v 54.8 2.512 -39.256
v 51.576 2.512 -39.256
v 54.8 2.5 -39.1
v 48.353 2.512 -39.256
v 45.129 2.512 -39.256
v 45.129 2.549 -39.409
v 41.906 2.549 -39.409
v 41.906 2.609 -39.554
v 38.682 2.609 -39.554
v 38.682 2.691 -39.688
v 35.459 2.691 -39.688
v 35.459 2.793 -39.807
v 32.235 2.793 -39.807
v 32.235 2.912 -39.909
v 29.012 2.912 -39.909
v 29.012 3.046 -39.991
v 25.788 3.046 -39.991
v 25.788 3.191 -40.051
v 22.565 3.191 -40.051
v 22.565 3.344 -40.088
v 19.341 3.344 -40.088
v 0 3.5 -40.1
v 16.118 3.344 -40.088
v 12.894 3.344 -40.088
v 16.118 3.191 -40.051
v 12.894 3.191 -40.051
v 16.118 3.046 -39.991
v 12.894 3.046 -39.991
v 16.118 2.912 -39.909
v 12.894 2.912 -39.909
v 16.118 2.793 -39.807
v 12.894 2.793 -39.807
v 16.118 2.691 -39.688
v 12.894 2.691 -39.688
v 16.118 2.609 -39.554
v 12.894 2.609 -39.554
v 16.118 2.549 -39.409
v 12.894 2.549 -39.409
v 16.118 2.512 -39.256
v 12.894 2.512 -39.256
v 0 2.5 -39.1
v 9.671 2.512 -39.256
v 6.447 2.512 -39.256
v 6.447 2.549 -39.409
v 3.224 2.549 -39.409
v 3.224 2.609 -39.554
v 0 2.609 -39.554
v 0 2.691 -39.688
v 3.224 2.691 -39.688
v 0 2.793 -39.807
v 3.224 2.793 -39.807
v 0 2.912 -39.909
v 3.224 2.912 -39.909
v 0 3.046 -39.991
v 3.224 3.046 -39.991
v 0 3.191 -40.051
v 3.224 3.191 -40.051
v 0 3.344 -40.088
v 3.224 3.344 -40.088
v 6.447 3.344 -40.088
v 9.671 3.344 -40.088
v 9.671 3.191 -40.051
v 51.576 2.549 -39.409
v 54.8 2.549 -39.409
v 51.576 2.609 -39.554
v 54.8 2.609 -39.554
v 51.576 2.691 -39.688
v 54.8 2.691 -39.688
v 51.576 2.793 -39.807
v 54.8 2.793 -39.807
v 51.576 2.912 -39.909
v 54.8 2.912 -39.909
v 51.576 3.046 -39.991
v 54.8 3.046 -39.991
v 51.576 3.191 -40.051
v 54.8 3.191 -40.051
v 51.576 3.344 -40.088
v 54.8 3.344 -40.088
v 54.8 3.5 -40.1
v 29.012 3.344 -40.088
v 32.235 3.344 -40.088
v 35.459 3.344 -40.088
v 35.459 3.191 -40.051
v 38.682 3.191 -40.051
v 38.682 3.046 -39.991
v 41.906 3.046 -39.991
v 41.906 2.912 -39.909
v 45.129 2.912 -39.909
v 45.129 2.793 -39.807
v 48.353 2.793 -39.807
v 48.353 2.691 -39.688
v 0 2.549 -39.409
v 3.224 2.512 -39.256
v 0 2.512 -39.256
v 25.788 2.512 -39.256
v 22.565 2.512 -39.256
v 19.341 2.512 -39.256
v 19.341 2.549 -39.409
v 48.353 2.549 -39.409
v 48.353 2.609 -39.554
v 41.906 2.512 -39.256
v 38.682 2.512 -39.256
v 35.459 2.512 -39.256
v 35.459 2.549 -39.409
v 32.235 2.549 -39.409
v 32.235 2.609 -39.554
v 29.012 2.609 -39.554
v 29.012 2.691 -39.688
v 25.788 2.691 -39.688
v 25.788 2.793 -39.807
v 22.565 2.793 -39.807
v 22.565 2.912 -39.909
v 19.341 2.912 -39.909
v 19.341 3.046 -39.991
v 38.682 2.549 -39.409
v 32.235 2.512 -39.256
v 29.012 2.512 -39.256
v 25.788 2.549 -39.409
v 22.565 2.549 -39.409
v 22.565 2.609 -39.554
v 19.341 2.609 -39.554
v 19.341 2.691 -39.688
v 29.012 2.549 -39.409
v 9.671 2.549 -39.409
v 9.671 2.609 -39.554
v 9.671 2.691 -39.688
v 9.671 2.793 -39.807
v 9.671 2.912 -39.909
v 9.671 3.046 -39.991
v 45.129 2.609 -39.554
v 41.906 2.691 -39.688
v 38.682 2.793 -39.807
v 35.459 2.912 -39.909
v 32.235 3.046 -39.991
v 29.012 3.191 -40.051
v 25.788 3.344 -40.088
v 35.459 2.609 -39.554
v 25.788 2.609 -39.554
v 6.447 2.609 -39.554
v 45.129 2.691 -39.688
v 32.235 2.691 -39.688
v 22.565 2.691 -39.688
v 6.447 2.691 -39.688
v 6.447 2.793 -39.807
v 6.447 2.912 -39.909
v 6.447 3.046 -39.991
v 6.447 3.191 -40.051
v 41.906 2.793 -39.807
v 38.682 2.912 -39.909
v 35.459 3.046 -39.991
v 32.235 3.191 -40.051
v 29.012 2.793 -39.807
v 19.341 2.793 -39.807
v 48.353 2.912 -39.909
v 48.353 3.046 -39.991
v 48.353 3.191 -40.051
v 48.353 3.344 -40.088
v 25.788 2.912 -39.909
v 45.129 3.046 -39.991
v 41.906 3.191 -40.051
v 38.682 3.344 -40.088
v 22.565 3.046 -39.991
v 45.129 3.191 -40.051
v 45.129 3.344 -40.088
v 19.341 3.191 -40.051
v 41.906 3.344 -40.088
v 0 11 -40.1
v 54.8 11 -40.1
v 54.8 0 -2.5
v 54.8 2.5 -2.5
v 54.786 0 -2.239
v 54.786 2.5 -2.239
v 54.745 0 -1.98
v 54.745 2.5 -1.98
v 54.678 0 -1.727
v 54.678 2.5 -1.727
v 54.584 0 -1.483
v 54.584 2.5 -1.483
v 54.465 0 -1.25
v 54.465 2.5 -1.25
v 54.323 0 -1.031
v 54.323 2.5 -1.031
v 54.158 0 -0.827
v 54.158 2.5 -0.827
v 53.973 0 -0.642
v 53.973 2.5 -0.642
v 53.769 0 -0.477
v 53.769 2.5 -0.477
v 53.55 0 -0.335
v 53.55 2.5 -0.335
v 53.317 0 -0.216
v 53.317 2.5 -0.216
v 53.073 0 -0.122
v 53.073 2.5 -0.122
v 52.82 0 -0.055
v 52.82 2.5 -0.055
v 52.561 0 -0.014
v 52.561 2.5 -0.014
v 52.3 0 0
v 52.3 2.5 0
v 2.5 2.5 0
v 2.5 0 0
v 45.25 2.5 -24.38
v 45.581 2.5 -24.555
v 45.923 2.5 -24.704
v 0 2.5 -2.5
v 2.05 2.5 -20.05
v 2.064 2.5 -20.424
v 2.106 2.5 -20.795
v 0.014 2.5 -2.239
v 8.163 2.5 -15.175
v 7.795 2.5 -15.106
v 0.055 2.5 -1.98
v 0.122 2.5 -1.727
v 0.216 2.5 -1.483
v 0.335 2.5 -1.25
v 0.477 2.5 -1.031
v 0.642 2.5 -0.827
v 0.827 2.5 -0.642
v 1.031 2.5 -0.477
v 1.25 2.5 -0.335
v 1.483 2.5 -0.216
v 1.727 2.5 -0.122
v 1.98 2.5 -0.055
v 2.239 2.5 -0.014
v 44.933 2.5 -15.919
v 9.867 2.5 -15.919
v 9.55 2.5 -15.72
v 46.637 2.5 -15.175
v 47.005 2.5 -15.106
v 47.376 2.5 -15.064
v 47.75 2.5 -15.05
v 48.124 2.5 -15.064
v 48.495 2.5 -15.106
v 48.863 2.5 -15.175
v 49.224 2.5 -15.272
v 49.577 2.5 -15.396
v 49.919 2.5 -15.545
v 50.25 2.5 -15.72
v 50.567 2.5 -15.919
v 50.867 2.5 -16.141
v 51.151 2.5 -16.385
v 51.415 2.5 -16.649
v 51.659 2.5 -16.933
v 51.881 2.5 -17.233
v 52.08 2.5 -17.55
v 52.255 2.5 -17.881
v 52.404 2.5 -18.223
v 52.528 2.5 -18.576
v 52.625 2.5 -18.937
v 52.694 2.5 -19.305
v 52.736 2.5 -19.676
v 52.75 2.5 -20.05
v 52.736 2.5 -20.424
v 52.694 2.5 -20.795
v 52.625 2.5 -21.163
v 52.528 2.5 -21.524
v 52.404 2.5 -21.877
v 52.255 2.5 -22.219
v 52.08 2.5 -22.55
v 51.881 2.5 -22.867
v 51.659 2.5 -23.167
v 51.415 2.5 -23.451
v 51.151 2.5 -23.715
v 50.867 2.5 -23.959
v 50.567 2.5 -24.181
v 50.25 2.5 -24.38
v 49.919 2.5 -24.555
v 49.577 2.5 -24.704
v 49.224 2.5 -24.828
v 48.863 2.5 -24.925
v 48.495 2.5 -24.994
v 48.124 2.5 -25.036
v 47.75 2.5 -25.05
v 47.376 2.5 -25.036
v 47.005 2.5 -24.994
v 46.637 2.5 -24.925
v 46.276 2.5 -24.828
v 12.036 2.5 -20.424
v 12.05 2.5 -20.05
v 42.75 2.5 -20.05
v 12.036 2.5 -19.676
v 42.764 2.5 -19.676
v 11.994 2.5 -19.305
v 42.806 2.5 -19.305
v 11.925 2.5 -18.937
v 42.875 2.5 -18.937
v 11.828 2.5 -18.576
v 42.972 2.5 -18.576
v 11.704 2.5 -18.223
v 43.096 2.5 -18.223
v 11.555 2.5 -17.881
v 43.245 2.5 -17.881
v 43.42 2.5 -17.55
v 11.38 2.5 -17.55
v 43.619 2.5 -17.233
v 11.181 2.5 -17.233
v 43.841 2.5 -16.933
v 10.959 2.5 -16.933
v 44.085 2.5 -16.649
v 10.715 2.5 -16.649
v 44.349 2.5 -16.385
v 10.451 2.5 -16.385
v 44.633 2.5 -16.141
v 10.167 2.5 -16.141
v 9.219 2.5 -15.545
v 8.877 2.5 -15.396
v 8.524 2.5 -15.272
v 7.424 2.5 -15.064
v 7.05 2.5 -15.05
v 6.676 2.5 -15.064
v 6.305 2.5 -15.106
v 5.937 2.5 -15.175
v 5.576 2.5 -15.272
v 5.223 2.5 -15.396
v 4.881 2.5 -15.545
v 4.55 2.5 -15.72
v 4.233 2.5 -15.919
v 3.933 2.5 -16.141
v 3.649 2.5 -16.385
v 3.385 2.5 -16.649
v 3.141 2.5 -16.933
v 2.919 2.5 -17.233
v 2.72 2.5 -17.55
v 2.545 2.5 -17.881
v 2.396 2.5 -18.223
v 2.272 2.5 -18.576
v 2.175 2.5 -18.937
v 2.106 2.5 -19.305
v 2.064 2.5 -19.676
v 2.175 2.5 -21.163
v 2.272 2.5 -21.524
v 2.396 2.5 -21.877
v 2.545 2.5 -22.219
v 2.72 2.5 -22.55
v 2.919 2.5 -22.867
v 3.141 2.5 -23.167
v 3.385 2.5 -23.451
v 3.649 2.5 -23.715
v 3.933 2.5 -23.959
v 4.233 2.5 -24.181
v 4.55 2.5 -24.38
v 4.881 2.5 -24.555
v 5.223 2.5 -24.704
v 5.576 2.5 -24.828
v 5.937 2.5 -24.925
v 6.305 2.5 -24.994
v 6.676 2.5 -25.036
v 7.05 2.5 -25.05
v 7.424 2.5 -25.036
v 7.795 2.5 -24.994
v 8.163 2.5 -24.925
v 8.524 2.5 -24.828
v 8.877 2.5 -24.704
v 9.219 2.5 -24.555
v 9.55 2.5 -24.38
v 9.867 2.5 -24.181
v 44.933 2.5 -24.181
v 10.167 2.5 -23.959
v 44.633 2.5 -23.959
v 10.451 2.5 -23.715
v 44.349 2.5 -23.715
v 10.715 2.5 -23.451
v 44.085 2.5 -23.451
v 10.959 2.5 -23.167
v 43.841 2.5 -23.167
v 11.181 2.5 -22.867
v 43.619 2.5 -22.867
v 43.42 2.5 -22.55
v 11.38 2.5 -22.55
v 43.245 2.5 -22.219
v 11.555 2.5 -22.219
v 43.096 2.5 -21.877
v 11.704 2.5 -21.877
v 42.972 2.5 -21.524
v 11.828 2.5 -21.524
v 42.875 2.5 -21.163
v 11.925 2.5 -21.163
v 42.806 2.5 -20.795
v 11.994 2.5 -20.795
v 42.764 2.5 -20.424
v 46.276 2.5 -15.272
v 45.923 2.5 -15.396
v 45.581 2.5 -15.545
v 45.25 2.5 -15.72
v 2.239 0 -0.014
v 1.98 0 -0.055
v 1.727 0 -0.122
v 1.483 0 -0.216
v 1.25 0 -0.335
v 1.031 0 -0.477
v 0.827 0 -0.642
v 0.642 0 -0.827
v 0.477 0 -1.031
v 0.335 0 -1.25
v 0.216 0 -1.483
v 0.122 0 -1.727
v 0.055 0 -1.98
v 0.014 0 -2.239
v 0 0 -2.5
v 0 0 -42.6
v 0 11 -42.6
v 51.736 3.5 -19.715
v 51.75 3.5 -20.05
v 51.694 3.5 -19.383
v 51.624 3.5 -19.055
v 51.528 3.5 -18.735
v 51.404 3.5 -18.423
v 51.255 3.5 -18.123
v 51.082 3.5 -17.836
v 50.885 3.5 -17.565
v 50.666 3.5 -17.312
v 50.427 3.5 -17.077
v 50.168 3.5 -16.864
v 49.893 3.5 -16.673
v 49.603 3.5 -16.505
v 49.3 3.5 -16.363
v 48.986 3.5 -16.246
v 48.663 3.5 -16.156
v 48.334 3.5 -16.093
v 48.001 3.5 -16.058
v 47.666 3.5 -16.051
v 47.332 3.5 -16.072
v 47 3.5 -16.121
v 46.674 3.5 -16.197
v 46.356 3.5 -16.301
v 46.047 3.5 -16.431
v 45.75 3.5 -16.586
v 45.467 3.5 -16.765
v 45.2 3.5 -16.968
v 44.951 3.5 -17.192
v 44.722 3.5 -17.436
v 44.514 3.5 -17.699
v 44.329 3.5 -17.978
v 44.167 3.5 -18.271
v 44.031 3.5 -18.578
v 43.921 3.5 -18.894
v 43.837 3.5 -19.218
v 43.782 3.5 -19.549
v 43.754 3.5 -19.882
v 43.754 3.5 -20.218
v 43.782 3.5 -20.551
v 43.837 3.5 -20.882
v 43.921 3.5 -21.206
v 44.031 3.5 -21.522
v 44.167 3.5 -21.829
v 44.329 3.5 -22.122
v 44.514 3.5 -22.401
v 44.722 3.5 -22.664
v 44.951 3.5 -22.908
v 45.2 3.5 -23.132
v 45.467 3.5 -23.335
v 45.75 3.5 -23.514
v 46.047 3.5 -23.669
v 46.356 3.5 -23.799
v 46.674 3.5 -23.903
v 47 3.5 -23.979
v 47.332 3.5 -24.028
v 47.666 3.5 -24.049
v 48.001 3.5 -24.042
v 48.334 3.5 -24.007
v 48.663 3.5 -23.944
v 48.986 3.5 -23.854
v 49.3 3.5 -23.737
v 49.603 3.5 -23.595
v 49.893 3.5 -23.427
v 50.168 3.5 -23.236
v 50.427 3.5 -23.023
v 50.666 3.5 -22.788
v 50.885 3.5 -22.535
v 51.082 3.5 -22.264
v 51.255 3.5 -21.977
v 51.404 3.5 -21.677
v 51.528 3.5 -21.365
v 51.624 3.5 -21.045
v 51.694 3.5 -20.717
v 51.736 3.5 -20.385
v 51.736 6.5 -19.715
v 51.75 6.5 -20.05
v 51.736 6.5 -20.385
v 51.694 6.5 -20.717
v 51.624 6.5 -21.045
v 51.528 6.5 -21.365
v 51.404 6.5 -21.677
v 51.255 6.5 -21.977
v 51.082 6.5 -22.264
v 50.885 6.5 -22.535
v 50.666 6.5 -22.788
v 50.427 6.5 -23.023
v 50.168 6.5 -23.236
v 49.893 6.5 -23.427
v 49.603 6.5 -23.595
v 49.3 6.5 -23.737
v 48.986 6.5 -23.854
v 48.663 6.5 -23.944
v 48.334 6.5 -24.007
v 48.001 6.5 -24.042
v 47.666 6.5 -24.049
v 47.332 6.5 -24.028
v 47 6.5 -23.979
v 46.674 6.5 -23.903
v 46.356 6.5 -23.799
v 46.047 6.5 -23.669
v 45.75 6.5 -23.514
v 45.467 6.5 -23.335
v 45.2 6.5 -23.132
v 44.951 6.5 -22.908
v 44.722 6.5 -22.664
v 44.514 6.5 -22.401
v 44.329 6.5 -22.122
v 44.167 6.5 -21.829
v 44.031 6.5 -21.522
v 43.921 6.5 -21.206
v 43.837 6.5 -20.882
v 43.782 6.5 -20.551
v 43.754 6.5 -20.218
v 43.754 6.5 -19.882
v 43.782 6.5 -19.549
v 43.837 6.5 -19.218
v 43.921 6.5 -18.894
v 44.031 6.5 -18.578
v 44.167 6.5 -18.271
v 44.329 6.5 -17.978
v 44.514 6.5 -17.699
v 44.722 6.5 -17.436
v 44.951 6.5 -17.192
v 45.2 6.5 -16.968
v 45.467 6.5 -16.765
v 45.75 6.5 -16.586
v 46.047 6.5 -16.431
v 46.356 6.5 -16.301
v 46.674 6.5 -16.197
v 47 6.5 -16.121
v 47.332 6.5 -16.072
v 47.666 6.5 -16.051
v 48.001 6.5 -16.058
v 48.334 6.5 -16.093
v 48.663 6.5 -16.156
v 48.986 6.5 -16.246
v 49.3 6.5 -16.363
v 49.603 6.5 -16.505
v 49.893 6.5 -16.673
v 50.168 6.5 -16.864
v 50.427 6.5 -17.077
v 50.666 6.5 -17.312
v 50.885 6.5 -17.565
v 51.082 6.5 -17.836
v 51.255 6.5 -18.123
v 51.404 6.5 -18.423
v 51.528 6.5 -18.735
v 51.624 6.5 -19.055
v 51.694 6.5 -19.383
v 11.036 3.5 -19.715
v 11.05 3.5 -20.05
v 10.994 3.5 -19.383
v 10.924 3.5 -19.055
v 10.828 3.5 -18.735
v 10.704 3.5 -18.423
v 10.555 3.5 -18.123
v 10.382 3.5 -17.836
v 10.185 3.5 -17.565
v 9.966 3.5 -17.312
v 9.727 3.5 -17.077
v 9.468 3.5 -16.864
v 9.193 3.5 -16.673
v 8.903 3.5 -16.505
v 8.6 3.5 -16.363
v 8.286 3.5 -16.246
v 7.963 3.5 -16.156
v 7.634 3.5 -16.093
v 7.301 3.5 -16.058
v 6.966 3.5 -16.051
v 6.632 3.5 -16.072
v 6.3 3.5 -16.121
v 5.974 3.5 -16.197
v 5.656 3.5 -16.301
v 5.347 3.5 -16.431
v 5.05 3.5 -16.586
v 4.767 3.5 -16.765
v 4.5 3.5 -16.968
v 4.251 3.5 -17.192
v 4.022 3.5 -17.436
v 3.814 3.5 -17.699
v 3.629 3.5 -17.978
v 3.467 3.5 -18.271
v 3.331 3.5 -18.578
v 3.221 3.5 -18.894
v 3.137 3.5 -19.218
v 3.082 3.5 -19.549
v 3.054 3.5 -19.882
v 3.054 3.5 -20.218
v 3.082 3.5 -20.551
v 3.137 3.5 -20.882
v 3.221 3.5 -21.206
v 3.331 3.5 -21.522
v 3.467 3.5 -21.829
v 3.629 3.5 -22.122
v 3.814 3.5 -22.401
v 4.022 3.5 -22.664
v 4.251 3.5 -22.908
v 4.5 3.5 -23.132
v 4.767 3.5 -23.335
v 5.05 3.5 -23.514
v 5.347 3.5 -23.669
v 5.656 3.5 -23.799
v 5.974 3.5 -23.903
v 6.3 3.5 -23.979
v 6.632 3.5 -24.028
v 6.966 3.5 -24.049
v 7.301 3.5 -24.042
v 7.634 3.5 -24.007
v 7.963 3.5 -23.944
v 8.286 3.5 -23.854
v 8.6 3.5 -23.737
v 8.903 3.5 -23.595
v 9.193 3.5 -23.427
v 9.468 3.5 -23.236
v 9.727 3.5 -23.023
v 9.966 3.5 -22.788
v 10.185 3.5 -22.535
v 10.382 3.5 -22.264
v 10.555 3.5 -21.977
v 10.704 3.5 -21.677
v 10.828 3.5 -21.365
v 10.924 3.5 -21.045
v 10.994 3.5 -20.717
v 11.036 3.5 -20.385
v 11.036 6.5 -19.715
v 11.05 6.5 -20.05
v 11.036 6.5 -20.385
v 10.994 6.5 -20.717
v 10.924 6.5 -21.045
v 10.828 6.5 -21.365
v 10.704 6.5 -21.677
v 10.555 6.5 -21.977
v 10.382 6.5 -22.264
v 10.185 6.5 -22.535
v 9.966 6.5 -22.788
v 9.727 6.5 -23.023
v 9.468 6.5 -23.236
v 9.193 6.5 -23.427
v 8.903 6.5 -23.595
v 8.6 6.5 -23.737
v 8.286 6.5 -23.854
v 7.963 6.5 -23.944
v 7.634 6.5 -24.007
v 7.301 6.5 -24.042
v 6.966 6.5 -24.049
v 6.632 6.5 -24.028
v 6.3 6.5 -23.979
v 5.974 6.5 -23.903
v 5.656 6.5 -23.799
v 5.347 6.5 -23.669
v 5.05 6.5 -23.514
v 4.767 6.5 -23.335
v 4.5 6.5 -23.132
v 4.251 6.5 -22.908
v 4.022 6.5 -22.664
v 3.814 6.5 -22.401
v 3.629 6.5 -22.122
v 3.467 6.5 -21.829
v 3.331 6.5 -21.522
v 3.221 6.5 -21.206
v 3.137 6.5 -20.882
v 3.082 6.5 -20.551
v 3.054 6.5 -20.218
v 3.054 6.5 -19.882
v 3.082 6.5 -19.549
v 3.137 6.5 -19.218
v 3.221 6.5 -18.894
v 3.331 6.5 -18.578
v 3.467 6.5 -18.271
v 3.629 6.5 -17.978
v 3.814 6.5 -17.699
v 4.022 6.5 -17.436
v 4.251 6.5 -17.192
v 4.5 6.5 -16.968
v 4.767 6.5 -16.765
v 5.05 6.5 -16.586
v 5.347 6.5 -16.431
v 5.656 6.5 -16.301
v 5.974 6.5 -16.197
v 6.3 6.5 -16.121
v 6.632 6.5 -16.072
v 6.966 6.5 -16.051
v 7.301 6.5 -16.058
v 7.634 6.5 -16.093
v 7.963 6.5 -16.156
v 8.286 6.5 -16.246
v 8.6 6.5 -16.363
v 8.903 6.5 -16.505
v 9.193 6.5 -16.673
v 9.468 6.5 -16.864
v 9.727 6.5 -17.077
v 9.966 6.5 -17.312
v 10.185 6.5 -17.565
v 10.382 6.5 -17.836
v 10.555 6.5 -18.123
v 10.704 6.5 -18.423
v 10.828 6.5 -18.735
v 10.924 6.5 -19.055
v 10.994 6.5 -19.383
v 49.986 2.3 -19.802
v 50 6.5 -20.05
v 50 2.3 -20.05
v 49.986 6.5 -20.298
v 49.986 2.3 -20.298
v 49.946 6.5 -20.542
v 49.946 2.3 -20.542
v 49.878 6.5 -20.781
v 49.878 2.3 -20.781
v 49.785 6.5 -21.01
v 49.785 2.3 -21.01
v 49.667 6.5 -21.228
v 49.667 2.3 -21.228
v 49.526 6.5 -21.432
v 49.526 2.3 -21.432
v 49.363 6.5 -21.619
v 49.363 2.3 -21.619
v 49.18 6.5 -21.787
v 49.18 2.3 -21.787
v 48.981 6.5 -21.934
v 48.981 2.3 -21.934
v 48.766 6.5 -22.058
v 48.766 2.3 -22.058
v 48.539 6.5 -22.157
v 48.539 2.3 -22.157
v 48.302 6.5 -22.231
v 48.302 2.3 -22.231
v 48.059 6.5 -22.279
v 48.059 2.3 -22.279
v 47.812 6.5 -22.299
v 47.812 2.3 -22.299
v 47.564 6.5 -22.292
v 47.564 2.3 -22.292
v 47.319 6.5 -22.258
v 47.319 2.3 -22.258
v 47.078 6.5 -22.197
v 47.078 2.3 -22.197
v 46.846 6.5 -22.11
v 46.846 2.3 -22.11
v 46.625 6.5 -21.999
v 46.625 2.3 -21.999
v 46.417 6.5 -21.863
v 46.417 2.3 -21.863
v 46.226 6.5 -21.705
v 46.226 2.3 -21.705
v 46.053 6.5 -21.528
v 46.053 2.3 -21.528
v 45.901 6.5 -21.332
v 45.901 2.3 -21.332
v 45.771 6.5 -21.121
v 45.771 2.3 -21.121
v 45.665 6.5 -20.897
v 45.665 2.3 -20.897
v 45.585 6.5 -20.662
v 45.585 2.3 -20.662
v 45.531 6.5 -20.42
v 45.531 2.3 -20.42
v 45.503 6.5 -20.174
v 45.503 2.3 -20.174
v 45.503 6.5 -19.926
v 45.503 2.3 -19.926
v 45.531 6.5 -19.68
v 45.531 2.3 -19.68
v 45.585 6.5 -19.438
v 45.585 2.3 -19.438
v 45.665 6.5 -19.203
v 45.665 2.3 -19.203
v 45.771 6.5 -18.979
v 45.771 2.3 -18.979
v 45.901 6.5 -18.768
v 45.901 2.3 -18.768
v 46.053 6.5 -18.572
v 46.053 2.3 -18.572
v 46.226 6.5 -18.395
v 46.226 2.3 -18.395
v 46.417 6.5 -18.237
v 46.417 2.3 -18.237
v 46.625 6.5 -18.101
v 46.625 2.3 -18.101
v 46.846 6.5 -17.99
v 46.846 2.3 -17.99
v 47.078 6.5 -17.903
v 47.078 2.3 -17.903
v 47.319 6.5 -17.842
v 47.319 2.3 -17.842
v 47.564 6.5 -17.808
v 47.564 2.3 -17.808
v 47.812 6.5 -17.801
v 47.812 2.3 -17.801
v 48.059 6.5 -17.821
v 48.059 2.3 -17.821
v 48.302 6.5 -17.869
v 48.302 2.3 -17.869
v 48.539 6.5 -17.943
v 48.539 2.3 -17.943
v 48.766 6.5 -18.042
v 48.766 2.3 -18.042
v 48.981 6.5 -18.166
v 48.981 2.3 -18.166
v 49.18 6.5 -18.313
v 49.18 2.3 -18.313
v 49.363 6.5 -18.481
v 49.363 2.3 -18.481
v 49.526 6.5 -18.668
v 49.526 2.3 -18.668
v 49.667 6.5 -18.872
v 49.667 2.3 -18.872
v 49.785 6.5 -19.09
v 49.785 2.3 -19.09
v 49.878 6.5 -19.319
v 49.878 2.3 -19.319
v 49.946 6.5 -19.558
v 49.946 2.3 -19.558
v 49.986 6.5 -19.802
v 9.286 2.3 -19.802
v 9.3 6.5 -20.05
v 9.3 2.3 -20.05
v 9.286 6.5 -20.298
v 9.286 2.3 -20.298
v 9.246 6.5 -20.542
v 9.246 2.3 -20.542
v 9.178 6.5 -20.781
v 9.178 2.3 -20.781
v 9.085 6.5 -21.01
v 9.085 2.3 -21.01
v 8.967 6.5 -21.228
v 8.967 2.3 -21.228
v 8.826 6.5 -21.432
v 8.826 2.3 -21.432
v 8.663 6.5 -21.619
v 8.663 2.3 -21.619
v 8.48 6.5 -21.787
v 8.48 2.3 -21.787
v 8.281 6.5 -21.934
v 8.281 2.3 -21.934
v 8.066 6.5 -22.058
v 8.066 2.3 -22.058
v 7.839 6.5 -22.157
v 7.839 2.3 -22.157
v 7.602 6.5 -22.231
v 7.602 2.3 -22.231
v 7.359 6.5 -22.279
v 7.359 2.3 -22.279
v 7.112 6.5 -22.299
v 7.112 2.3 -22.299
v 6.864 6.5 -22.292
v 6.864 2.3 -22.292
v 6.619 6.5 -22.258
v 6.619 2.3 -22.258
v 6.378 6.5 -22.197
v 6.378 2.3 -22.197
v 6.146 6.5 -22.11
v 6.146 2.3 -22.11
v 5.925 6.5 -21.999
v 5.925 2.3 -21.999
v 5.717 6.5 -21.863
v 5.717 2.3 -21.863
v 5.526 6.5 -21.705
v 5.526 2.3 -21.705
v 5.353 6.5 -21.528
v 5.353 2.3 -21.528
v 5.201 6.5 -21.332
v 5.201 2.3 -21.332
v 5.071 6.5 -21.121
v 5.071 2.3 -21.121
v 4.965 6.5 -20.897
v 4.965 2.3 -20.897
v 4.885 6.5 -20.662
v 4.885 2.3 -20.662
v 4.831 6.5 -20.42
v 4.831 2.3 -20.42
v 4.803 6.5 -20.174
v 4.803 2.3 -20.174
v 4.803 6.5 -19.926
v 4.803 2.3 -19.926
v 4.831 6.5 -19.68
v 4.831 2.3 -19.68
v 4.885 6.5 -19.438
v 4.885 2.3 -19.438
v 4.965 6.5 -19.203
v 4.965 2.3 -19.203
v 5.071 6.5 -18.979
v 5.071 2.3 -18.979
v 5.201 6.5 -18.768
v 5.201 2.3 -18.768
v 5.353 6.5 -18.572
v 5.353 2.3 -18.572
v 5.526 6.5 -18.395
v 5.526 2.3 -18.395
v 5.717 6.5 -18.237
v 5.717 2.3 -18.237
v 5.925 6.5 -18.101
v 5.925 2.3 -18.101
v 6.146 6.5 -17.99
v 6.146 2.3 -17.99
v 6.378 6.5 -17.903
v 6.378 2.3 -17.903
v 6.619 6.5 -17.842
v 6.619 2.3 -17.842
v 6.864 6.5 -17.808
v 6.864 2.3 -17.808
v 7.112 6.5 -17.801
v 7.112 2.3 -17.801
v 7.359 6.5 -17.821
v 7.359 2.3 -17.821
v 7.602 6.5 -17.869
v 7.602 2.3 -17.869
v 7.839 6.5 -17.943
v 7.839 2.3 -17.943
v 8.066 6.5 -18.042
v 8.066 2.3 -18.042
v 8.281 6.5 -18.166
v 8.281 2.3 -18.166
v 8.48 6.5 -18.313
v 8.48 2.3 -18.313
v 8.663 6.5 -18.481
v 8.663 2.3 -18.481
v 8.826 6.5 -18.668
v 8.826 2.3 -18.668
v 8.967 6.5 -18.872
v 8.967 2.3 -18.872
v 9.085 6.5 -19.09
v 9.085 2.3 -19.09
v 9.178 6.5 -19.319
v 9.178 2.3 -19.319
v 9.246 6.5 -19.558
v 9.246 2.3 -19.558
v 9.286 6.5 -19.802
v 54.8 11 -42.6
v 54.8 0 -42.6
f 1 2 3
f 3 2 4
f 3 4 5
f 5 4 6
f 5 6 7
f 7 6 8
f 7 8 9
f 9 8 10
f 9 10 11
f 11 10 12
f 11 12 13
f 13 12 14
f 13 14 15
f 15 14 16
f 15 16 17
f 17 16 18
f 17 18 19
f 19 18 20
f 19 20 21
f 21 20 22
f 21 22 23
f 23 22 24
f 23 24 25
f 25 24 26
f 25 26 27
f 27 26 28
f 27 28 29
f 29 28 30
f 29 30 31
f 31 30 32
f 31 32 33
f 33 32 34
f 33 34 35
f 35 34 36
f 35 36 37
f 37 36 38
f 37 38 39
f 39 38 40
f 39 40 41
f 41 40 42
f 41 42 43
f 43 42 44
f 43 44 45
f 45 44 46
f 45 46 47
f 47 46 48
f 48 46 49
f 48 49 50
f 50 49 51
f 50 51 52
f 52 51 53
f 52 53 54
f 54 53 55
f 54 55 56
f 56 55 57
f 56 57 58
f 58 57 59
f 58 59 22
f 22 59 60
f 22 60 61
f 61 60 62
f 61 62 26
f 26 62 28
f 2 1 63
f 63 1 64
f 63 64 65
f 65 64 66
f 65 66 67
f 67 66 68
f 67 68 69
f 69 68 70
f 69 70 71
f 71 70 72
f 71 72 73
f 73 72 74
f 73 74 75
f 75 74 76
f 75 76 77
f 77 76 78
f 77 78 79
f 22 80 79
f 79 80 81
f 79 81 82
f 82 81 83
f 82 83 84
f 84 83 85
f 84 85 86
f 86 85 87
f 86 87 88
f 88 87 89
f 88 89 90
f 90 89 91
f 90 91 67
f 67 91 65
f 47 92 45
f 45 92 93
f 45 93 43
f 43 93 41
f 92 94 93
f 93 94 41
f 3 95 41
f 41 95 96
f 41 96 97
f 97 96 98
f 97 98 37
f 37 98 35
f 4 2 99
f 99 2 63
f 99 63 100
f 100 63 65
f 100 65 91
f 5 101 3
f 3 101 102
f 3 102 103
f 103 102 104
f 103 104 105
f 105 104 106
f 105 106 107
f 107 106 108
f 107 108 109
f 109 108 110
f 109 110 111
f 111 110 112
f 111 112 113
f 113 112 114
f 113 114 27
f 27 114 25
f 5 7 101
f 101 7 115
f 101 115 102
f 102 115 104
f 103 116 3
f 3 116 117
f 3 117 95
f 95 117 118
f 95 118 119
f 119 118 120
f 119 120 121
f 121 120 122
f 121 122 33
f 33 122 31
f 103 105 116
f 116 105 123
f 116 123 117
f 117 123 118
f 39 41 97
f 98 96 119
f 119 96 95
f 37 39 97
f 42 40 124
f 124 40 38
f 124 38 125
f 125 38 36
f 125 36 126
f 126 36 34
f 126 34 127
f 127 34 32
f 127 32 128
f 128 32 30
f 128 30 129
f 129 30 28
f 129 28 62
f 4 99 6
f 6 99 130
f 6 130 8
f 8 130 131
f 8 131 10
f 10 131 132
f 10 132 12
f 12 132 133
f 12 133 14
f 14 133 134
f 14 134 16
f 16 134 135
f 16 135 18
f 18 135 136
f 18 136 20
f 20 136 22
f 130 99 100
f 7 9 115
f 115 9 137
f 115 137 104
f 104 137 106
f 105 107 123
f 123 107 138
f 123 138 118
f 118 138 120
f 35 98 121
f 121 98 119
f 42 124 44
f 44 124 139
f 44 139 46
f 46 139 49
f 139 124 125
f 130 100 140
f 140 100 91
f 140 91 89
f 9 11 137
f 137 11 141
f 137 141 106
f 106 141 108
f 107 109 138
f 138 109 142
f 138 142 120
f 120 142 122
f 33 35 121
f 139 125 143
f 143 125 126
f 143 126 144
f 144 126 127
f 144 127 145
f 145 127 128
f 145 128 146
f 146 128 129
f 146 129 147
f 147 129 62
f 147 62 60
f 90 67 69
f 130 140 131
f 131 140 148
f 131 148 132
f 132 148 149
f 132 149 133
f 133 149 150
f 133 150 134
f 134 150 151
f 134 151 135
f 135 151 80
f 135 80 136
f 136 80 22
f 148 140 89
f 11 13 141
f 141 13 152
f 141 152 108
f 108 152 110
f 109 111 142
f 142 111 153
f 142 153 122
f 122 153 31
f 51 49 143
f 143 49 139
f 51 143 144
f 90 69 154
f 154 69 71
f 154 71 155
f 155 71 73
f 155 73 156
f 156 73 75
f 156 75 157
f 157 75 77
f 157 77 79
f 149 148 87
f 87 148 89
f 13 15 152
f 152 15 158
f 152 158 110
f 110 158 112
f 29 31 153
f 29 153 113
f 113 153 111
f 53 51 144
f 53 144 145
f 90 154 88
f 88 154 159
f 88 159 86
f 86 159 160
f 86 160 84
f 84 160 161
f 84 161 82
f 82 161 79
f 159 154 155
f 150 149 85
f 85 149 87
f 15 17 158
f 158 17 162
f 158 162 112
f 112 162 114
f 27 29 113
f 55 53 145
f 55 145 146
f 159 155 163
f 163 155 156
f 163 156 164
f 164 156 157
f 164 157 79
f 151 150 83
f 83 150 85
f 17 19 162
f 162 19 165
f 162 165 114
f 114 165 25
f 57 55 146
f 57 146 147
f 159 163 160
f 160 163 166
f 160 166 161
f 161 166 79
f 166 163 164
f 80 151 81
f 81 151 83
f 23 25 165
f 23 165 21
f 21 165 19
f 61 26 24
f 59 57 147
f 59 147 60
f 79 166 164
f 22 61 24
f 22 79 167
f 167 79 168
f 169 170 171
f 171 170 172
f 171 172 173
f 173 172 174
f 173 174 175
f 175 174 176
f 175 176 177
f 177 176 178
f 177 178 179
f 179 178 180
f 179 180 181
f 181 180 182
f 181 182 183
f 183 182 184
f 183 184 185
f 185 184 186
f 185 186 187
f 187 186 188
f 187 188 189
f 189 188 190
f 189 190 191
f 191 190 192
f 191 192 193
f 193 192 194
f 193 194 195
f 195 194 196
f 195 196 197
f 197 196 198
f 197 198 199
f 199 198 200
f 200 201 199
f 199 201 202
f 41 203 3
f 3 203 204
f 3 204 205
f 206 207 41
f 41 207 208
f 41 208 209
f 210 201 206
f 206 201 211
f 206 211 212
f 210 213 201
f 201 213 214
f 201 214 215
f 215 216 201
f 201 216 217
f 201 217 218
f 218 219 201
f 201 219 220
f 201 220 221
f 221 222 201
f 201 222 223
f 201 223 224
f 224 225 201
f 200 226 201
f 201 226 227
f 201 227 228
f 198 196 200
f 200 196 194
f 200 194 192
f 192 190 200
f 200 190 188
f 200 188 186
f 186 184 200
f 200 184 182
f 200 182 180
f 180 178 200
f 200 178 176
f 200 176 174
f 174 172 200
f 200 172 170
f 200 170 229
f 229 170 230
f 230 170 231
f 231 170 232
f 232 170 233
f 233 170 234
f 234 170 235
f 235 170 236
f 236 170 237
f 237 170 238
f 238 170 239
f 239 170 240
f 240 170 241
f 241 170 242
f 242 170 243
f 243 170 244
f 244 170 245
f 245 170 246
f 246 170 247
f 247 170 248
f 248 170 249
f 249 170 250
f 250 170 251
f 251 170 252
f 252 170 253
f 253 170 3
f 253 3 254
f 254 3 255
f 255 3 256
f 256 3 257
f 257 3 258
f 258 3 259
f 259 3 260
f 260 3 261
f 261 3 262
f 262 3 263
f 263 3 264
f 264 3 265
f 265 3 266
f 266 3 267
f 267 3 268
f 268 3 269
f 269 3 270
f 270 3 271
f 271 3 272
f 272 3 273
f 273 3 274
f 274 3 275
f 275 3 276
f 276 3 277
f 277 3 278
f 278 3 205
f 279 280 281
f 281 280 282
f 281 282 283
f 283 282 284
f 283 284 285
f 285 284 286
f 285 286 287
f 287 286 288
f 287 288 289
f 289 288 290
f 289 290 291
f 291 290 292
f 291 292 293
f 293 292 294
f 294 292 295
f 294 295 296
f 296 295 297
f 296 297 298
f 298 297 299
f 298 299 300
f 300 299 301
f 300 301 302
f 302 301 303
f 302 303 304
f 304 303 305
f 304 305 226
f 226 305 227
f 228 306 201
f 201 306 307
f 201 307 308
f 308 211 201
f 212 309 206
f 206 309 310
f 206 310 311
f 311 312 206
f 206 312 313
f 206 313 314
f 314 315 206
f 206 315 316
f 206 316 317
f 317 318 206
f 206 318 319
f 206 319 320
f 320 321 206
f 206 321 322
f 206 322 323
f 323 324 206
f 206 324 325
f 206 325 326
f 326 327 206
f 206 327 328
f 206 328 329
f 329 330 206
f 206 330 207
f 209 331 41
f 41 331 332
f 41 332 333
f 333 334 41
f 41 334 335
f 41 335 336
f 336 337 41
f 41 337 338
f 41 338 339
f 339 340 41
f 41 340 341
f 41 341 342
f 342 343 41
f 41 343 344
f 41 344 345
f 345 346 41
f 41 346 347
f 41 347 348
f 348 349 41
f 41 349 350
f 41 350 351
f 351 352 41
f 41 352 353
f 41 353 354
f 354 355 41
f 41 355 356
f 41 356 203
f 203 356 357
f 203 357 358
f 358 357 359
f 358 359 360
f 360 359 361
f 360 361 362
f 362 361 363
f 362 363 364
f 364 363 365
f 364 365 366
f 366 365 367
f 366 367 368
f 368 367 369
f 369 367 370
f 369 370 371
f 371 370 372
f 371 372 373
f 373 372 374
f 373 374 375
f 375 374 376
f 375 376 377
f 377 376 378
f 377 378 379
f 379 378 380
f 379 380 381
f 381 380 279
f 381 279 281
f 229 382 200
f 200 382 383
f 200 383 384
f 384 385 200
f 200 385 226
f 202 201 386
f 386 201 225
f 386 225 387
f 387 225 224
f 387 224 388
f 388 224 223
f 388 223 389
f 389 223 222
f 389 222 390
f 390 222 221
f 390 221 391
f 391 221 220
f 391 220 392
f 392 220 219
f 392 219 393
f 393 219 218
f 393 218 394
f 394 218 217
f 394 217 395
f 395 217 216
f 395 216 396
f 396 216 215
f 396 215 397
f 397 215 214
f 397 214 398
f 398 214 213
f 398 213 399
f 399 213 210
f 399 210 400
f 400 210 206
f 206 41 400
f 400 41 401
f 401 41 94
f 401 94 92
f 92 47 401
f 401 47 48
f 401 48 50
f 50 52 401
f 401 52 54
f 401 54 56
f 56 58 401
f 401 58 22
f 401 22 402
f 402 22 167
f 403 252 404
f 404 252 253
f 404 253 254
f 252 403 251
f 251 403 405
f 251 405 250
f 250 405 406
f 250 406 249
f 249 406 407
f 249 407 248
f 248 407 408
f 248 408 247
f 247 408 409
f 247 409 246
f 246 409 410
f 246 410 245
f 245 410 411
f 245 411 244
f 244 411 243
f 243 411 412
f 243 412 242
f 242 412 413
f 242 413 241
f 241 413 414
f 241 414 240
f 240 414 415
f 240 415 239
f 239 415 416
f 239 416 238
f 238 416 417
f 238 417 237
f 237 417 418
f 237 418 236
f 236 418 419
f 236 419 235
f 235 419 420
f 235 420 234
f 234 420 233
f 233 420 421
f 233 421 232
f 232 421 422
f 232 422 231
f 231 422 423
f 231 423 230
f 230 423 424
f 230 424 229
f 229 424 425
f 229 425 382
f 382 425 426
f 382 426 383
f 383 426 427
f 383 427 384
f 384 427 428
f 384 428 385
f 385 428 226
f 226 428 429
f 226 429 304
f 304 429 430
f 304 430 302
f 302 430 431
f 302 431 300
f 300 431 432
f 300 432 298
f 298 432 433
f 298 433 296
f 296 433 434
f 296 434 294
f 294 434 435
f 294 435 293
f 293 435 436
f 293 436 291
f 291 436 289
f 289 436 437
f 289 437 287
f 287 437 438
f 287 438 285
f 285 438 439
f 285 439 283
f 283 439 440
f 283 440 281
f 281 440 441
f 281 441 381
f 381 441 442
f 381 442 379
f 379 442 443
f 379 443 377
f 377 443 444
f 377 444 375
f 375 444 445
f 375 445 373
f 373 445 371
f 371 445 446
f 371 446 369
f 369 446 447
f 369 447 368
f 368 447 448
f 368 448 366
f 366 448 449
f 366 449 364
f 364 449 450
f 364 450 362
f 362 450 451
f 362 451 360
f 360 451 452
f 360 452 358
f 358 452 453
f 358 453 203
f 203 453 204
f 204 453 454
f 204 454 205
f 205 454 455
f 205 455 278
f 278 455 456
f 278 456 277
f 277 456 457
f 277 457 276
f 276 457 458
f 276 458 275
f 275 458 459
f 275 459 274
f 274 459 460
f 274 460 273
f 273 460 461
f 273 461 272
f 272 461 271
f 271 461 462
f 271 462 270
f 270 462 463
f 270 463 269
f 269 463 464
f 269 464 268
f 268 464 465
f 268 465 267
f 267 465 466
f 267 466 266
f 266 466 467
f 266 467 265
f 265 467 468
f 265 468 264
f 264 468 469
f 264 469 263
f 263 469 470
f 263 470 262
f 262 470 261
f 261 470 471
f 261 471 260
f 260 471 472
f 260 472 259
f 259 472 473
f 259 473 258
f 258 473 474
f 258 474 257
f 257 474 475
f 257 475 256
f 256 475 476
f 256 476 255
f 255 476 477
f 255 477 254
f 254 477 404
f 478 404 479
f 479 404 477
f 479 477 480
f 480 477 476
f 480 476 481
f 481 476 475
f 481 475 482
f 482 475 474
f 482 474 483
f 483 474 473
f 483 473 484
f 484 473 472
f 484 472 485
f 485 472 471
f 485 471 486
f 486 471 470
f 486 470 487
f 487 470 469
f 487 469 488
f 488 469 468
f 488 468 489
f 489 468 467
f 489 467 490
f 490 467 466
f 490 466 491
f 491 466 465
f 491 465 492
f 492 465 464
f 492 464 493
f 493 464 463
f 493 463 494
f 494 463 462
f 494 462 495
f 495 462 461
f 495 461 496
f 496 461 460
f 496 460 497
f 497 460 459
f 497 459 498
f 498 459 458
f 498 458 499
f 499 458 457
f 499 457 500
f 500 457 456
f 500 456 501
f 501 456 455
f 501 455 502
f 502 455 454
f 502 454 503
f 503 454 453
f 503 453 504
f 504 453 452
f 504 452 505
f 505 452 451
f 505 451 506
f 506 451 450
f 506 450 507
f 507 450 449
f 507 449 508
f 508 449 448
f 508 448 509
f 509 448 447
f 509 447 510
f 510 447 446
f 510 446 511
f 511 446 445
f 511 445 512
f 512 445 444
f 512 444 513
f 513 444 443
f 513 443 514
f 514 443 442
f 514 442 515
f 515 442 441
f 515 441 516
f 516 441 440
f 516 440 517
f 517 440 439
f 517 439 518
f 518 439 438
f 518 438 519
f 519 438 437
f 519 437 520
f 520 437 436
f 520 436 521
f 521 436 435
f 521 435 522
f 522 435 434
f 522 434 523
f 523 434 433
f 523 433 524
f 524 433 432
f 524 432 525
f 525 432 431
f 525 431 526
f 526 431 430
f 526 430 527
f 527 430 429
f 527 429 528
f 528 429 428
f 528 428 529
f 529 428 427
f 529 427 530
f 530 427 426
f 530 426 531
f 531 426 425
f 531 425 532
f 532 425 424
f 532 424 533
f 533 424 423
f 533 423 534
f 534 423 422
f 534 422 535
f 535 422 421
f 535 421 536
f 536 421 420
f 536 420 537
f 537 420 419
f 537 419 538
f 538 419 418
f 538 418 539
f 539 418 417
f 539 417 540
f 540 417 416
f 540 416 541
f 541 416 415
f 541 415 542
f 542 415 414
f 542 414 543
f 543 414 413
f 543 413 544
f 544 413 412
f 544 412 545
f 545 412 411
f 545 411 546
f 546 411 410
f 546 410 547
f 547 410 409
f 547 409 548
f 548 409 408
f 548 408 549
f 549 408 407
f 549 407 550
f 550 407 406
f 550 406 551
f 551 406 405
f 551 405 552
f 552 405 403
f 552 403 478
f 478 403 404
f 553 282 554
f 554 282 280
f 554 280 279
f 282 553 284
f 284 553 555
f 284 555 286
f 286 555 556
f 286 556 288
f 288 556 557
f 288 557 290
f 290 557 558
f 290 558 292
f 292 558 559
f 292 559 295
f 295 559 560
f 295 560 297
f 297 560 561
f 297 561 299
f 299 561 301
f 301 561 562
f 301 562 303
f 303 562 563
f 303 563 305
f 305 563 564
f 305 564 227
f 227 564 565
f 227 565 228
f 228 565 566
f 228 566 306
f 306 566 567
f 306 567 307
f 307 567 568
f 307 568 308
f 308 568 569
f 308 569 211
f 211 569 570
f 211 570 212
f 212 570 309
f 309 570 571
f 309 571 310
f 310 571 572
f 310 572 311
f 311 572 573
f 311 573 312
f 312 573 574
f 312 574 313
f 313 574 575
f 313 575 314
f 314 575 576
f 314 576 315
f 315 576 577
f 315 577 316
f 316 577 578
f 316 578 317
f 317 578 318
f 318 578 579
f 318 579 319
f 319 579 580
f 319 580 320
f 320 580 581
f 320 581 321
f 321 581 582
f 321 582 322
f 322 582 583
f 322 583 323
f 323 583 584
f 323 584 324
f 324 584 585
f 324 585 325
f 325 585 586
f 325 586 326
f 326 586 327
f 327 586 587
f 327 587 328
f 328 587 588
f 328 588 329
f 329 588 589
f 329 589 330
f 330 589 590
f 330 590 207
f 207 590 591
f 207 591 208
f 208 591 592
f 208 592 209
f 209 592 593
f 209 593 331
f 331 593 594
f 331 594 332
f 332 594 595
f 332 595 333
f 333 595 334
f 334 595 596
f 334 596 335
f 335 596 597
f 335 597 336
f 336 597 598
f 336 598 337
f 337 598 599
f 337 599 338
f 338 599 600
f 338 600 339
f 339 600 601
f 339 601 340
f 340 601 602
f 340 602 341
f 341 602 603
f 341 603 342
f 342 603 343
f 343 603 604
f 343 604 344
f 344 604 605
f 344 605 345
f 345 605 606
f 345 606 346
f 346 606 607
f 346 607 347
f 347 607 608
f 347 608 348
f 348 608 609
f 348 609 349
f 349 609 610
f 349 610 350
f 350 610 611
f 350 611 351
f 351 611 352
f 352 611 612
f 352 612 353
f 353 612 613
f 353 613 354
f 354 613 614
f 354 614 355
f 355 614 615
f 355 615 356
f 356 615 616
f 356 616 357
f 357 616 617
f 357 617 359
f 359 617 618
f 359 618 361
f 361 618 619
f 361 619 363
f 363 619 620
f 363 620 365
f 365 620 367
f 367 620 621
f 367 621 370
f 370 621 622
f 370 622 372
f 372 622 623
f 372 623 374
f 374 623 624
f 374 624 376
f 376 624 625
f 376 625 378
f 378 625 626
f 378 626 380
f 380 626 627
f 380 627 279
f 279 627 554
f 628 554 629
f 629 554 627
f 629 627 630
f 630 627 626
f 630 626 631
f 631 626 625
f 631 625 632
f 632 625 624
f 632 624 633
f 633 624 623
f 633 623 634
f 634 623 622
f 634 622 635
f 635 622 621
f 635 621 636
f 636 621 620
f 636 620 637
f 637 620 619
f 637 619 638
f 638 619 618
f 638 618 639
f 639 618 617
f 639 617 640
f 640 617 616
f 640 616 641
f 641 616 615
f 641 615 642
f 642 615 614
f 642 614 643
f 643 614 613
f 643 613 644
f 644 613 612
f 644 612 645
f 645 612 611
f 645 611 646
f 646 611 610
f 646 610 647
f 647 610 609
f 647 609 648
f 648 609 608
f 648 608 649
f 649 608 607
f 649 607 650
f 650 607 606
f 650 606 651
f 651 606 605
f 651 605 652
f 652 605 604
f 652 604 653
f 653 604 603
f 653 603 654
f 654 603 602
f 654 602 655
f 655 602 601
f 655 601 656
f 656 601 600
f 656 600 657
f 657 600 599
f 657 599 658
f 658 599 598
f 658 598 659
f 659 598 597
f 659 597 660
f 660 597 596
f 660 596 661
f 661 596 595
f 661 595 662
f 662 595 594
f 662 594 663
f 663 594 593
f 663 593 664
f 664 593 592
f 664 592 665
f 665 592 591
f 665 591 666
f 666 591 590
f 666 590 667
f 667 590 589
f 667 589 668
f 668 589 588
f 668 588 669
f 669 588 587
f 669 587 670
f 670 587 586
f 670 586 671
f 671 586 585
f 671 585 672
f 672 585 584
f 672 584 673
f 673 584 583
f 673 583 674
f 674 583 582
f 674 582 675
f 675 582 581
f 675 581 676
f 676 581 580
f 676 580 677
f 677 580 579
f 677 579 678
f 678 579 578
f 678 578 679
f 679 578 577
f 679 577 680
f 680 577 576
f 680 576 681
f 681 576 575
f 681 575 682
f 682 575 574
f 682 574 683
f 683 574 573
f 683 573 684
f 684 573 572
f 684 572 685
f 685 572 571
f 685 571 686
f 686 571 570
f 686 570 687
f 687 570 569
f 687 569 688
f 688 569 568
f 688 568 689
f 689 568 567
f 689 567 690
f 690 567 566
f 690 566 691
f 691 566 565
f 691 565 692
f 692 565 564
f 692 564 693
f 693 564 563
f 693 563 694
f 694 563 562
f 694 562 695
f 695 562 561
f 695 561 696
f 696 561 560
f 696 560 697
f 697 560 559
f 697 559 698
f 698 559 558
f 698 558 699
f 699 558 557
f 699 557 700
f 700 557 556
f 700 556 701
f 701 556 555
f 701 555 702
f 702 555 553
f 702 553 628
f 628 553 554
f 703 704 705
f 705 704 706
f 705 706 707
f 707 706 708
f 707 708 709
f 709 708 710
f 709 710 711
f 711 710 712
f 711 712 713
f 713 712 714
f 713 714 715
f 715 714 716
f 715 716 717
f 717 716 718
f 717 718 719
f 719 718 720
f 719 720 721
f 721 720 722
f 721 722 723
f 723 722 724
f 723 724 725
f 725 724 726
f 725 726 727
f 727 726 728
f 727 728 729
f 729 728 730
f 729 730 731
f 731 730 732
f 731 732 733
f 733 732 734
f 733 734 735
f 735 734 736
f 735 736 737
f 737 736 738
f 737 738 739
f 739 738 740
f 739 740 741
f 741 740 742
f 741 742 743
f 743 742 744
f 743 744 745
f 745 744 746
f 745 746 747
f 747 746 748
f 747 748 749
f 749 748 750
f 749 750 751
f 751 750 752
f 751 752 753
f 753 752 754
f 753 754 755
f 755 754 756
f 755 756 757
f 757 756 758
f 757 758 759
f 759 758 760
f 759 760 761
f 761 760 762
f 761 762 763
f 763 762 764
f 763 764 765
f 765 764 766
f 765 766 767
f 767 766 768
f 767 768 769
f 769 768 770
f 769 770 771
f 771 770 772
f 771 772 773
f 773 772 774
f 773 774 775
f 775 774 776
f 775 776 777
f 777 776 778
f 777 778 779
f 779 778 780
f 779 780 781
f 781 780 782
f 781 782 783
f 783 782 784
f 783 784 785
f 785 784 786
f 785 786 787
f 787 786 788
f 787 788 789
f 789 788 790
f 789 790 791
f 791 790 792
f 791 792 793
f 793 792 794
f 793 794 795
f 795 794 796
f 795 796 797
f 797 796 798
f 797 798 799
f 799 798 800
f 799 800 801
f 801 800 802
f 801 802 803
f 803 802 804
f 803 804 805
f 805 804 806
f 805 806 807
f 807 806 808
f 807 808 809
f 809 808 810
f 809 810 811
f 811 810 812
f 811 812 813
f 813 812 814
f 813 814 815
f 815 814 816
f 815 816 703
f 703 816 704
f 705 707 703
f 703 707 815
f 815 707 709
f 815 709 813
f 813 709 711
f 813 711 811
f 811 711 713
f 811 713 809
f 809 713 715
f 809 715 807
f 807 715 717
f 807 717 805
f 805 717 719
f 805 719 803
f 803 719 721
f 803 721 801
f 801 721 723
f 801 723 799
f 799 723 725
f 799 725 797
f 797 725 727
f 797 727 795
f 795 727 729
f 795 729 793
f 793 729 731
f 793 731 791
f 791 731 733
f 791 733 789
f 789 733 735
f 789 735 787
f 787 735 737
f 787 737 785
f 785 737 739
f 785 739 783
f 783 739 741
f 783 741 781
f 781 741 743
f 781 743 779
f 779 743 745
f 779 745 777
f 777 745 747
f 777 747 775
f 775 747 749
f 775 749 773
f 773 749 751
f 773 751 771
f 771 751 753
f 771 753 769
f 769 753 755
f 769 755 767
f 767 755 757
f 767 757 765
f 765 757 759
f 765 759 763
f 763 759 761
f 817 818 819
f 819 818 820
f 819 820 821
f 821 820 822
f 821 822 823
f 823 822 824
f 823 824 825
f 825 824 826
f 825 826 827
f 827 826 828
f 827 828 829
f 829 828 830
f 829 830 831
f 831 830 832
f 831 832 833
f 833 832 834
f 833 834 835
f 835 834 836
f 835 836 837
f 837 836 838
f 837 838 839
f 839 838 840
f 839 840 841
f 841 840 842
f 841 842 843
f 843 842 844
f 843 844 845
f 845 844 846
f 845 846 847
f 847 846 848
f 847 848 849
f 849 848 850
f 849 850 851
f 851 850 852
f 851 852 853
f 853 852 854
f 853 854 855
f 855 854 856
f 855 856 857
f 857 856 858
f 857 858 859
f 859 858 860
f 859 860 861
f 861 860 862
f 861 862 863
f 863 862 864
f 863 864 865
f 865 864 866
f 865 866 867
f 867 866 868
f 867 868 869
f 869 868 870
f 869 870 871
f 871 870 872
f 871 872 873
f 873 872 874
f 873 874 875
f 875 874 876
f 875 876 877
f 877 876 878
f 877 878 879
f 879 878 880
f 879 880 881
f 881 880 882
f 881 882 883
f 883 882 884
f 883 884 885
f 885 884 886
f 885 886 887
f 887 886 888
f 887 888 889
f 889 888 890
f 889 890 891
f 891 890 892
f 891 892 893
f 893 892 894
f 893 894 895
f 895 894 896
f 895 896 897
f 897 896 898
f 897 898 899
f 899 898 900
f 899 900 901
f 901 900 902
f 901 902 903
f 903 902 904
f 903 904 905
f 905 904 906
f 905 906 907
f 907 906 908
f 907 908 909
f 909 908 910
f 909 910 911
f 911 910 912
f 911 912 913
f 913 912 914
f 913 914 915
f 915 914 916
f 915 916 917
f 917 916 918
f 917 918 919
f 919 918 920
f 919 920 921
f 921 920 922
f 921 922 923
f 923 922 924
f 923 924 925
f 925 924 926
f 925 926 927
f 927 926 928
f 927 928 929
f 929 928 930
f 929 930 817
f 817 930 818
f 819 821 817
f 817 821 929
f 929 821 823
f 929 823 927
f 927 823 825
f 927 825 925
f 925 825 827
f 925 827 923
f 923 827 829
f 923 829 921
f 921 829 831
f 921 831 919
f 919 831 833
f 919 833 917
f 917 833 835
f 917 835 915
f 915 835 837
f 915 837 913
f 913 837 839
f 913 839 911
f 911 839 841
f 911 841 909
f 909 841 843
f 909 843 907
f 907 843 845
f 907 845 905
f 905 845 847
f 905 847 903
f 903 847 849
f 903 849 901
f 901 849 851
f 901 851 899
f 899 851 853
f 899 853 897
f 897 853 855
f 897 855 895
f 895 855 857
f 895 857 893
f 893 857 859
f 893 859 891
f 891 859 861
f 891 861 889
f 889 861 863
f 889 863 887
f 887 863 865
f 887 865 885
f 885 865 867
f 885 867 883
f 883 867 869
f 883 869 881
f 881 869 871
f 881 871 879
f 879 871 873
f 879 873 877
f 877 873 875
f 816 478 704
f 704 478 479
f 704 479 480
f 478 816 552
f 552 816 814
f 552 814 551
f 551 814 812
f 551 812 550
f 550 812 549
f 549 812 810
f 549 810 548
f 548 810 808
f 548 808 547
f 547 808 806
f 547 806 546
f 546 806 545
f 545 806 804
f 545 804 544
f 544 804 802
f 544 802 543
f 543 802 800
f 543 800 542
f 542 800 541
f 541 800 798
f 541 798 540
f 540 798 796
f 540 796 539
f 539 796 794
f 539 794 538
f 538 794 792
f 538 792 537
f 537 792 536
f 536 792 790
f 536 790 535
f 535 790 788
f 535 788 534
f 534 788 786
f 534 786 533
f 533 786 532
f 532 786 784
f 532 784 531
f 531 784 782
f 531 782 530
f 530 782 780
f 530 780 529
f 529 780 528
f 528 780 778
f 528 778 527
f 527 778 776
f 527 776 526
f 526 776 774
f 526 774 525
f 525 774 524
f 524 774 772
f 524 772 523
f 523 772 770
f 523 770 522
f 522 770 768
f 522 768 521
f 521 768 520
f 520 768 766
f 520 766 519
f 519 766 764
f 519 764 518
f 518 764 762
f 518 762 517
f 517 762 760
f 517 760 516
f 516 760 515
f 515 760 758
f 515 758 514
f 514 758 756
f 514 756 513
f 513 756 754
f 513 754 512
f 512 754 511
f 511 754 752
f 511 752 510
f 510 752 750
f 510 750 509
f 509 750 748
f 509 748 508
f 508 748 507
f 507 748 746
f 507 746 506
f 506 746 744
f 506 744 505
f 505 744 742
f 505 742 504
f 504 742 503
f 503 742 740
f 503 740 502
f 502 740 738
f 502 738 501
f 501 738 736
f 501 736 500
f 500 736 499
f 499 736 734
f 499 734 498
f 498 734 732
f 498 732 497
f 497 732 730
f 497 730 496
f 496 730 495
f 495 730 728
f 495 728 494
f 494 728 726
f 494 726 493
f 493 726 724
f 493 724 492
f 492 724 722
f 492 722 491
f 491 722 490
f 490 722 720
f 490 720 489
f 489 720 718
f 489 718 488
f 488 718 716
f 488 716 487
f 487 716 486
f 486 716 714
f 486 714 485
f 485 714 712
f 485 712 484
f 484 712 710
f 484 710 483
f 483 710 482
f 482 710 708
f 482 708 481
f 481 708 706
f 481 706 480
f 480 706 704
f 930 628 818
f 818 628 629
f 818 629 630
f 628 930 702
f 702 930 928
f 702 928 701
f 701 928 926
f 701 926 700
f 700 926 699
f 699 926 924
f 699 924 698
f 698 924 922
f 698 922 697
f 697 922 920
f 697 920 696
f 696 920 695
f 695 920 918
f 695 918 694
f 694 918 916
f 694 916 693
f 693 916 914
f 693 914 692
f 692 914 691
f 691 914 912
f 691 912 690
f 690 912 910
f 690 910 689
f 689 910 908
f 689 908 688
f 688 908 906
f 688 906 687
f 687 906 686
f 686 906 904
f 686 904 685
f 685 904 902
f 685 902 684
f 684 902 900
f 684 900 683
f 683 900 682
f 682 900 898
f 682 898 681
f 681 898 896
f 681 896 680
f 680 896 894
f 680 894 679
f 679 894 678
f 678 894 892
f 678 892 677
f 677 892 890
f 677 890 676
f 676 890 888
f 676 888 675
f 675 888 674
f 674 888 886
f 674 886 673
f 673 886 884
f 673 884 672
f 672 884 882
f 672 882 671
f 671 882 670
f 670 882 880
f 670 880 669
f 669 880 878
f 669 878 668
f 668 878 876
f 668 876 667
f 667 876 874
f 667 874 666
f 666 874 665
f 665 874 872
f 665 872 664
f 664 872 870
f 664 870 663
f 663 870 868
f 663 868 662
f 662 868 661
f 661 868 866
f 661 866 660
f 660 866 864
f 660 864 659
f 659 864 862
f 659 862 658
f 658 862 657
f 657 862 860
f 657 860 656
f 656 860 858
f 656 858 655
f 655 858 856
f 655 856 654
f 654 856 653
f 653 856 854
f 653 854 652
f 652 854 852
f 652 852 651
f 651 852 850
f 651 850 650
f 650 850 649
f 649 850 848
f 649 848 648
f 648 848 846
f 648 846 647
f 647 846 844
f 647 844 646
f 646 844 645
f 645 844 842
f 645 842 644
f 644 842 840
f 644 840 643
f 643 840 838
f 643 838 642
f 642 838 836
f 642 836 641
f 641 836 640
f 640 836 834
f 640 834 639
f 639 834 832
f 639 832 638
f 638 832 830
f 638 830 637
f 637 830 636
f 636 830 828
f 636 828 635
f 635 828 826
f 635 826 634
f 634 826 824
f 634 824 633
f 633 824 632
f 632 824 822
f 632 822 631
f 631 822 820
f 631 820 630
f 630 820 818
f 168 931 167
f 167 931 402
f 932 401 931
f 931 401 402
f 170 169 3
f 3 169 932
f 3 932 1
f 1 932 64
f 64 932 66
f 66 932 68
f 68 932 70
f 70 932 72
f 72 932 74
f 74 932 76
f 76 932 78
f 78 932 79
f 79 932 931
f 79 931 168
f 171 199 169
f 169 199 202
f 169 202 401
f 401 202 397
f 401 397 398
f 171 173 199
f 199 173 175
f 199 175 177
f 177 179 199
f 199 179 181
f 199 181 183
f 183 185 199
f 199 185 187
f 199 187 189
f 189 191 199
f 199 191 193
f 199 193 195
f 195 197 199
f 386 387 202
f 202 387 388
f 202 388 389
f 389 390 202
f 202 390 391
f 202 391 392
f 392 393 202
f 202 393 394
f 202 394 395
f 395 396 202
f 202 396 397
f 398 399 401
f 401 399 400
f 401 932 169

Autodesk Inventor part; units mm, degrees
ref_plane "YZ Plane" through (0, 0, 0) normal (1, 0, 0) x (0, 1, 0)
ref_plane "XZ Plane" through (0, 0, 0) normal (0, 1, 0) x (-1, 0, 0)
ref_plane "XY Plane" through (0, 0, 0) normal (0, 0, 1) x (1, 0, 0)
sketch "Sketch1" plane through (0, 0, 0) normal (0, 1, 0) x (-1, 0, 0)
  line L0 (0, 0) -> (-54.8, 0)
  line L1 (-54.8, 0) -> (-54.8, -42.6)
  line L2 (-54.8, -42.6) -> (0, -42.6)
  line L3 (0, -42.6) -> (0, 0)
  dimension "d0" = 54.8
  dimension "d1" = 42.6
extrude "Extrusion1" add sketch "Sketch1" along normal blind 2.5
sketch "Sketch2" plane through (0, 2.5, 0) normal (0, 1, 0) x (1, 0, 0)
  line L0 (54.8, 0) -> (54.8, 42.6) projected
  line L1 (54.8, 42.6) -> (0, 42.6) projected
  line L2 (0, 42.6) -> (0, 0) projected
  line L3 (0, 0) -> (54.8, 0) projected
  line L4 (0, 42.6) -> (54.8, 42.6)
  line L5 (54.8, 42.6) -> (54.8, 40.1)
  line L6 (54.8, 40.1) -> (0, 40.1)
  line L7 (0, 40.1) -> (0, 42.6)
  dimension "d4" = 2.5
extrude "Extrusion2" add sketch "Sketch2" along normal blind 8.5 contours L6 L2 L1 L0
sketch "Sketch3" plane through (0, 2.5, 0) normal (0, 1, 0) x (1, 0, 0)
  line L0 (54.8, 40.1) -> (0, 40.1) projected
  line L1 (0, 40.1) -> (0, 0) projected
  line L2 (0, 0) -> (54.8, 0) projected
  line L3 (54.8, 0) -> (54.8, 40.1) projected
  circle A0 centre (7.05, 20.05) radius 4
  circle A1 centre (47.75, 20.05) radius 4
  dimension "d7" = 8
  dimension "d8" = 8
  dimension "d9" = 7.05
  dimension "d10" = 7.05
  dimension "d11" = 20.05
  dimension "d12" = 20.05
extrude "Extrusion3" cut sketch "Sketch3" against normal blind 0.5 contours A0 | A1
sketch "Sketch4" plane through (7.05, 2, -20.05) normal (0, 1, 0) x (1, 0, 0)
  circle A0 centre (0, 0) radius 4 projected
  circle A1 centre (0, 0) radius 4
  circle A2 centre (40.7, 0) radius 4 projected
  circle A3 centre (40.7, 0) radius 4
  point P0 (-7.05, -20.05)
  dimension "d15" = 8
  dimension "d16" = 8
extrude "Extrusion4" add sketch "Sketch4" along normal blind 4.5
sketch "Sketch5" plane through (7.05, 6.5, -20.05) normal (0, 1, 0) x (1, 0, 0)
  circle A0 centre (0, 0) radius 4 projected
  circle A1 centre (0, 0) radius 2.25
  circle A2 centre (40.7, 0) radius 4 projected
  circle A3 centre (40.7, 0) radius 2.25
  point P0 (-7.05, -20.05)
  dimension "d19" = 4.5
  dimension "d20" = 4.5
extrude "Extrusion5" cut sketch "Sketch5" against normal blind 4.2 contours A1 | A3
chamfer "Chamfer1" distance 1 angle 45 2 edges at (3.05, 2.5, -20.05) (43.75, 2.5, -20.05)
fillet "Fillet1" radius 2.5 2 edges at (0, 1.25, 0) (54.8, 1.25, 0)
fillet "Fillet2" radius 1 1 edges at (27.4, 2.5, -40.1)
properties part number "small_backplate"
